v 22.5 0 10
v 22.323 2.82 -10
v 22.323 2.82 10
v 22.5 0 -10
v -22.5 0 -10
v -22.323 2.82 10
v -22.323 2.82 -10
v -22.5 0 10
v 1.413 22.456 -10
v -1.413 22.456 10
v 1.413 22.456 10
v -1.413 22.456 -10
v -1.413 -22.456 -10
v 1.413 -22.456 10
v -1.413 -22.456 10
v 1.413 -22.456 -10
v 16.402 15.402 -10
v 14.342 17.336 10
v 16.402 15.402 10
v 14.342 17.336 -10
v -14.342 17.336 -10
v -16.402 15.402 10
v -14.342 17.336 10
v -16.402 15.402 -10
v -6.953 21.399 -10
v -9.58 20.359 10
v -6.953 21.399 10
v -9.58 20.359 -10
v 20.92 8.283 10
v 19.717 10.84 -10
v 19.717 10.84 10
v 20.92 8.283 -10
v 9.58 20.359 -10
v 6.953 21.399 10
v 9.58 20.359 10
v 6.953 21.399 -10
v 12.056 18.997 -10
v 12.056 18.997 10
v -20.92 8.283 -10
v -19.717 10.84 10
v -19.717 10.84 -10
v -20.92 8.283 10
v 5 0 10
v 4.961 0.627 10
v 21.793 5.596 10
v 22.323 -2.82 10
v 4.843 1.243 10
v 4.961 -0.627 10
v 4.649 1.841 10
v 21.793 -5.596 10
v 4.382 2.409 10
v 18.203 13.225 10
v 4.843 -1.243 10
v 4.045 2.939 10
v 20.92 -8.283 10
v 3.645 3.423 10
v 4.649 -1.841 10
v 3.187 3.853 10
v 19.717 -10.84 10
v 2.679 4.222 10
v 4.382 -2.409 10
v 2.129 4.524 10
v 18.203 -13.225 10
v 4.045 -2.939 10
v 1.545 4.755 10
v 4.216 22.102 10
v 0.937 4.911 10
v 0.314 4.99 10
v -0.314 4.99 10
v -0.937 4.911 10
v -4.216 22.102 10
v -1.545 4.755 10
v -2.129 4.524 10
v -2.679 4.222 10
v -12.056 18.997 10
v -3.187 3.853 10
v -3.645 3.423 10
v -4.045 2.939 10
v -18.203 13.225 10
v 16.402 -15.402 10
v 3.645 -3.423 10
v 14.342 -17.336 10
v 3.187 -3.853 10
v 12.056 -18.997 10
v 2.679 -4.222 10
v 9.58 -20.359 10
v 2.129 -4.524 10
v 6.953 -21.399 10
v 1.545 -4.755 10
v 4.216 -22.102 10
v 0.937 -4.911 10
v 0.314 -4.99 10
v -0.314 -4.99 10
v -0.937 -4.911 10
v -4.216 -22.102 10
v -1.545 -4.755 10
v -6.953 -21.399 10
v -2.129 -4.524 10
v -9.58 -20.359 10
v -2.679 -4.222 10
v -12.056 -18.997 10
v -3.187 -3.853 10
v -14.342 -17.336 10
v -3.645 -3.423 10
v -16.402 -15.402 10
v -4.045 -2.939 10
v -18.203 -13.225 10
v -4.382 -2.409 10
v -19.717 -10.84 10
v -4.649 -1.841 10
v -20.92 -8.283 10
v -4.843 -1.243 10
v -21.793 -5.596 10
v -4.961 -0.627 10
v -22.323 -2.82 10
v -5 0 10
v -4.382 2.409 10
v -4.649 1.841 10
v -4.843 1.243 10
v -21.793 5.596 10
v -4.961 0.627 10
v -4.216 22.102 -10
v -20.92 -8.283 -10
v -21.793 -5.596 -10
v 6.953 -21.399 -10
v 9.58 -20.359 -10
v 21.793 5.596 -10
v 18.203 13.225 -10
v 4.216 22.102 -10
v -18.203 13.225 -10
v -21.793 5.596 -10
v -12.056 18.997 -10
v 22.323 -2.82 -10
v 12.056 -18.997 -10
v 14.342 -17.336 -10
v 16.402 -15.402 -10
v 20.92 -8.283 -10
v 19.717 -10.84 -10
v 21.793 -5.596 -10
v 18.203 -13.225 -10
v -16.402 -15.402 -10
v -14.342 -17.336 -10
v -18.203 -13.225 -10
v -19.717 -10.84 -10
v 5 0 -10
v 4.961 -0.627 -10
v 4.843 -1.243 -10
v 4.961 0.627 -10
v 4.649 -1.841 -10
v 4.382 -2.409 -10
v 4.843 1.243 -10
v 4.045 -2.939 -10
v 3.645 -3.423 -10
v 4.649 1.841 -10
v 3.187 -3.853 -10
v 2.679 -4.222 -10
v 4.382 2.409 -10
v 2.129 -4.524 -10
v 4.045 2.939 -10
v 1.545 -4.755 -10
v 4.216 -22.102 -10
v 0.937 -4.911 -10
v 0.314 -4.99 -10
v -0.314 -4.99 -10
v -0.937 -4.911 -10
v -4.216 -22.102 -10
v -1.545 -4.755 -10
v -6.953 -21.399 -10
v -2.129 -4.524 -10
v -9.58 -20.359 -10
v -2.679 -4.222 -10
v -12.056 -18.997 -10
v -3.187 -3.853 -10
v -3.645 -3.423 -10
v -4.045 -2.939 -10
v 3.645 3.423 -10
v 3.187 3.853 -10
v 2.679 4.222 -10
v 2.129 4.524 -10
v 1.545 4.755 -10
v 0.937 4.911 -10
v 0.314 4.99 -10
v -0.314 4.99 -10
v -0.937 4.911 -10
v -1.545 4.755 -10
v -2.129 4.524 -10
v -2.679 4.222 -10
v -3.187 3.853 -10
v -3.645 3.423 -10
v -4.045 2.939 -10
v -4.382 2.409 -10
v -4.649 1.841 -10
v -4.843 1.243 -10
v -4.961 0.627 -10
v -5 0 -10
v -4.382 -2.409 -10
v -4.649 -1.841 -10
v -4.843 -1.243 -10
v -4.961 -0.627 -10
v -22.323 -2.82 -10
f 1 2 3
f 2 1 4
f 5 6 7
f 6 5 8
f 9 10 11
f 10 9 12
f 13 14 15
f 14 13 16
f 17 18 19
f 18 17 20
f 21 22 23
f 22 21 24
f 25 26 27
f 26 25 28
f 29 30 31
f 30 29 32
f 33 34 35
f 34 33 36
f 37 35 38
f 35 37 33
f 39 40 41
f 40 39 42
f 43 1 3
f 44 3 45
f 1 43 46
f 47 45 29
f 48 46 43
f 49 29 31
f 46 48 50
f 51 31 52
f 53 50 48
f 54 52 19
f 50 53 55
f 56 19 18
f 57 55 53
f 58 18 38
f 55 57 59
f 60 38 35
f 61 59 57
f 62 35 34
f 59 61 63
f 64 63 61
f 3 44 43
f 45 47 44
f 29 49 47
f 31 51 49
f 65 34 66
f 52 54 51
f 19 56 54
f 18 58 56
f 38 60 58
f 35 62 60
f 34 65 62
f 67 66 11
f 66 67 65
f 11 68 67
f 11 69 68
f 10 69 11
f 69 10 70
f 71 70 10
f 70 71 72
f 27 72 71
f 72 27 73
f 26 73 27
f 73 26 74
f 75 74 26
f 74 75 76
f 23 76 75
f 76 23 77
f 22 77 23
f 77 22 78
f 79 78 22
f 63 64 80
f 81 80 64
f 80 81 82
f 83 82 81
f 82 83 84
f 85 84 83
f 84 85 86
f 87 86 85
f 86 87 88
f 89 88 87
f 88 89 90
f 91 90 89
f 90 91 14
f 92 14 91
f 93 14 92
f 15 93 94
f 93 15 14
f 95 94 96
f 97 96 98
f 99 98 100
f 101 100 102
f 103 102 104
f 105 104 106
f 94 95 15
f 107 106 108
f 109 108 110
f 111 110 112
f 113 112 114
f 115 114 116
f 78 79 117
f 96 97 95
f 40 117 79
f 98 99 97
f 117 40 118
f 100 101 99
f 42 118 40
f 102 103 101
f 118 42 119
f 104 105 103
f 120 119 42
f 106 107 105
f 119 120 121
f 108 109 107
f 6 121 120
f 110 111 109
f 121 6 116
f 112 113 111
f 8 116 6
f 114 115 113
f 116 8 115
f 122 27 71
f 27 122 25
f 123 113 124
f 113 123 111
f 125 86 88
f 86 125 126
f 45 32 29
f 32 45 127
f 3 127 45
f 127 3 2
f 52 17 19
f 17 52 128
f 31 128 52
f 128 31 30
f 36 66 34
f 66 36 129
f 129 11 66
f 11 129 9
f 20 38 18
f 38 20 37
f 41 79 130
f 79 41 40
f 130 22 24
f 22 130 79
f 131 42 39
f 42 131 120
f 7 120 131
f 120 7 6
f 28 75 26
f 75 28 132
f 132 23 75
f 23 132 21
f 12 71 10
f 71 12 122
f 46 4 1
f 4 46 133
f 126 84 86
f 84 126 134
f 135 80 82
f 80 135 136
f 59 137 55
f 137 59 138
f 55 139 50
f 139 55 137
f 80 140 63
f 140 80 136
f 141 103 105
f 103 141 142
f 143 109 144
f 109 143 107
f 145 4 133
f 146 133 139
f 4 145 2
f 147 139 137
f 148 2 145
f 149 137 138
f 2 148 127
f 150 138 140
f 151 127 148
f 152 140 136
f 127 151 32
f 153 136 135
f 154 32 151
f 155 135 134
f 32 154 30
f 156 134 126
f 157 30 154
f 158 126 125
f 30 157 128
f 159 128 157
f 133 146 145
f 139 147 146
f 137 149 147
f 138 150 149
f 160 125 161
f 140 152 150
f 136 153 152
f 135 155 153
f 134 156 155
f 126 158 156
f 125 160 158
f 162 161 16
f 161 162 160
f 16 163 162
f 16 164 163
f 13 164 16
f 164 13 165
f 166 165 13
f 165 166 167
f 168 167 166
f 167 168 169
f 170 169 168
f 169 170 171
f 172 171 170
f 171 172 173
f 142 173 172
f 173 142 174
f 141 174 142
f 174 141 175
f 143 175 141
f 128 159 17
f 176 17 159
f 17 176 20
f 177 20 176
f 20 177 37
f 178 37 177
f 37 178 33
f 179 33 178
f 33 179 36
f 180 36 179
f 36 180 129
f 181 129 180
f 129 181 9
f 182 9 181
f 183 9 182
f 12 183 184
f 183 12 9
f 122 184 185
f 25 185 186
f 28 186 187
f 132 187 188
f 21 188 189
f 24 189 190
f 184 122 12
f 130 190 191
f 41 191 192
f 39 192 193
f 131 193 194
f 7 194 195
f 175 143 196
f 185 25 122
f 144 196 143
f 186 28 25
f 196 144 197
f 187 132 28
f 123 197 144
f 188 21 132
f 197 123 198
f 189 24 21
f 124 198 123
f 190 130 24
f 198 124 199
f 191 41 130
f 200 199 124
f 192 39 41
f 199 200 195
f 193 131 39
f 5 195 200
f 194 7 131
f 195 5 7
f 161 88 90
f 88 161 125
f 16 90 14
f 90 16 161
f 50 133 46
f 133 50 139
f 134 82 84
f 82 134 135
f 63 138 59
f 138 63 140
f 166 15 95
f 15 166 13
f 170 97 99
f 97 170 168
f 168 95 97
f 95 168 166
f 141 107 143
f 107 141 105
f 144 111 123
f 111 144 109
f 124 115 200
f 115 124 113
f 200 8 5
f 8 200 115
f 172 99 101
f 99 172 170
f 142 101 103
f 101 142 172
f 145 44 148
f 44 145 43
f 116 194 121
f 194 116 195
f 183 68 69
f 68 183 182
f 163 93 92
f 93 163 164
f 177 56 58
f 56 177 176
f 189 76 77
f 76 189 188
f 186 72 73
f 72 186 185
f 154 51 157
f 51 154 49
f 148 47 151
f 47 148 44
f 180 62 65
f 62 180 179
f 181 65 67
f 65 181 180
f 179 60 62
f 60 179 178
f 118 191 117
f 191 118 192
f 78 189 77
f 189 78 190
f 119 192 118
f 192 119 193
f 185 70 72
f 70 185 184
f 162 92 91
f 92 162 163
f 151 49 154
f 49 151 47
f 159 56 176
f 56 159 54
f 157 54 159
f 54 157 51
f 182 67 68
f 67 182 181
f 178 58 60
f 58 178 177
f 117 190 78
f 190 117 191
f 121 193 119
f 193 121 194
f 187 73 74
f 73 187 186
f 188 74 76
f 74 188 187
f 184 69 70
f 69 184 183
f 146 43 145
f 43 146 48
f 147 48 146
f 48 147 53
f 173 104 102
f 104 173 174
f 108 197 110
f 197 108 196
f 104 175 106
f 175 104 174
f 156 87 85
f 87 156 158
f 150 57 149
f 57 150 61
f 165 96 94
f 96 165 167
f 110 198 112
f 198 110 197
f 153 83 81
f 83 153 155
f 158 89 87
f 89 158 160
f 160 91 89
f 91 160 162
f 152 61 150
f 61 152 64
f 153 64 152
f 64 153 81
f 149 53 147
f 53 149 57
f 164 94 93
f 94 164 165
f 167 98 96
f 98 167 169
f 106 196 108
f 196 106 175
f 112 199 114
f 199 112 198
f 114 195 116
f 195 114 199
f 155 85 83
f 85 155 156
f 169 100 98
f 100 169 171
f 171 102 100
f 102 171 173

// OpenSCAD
$fn = 50;


difference() {
	union() {
		translate(v = [0, 0, -10.0000000000]) {
			cylinder(h = 20, r = 22.5000000000);
		}
	}
	union() {
		translate(v = [0, 0, -100.0000000000]) {
			cylinder(h = 200, r = 5);
		}
	}
}
